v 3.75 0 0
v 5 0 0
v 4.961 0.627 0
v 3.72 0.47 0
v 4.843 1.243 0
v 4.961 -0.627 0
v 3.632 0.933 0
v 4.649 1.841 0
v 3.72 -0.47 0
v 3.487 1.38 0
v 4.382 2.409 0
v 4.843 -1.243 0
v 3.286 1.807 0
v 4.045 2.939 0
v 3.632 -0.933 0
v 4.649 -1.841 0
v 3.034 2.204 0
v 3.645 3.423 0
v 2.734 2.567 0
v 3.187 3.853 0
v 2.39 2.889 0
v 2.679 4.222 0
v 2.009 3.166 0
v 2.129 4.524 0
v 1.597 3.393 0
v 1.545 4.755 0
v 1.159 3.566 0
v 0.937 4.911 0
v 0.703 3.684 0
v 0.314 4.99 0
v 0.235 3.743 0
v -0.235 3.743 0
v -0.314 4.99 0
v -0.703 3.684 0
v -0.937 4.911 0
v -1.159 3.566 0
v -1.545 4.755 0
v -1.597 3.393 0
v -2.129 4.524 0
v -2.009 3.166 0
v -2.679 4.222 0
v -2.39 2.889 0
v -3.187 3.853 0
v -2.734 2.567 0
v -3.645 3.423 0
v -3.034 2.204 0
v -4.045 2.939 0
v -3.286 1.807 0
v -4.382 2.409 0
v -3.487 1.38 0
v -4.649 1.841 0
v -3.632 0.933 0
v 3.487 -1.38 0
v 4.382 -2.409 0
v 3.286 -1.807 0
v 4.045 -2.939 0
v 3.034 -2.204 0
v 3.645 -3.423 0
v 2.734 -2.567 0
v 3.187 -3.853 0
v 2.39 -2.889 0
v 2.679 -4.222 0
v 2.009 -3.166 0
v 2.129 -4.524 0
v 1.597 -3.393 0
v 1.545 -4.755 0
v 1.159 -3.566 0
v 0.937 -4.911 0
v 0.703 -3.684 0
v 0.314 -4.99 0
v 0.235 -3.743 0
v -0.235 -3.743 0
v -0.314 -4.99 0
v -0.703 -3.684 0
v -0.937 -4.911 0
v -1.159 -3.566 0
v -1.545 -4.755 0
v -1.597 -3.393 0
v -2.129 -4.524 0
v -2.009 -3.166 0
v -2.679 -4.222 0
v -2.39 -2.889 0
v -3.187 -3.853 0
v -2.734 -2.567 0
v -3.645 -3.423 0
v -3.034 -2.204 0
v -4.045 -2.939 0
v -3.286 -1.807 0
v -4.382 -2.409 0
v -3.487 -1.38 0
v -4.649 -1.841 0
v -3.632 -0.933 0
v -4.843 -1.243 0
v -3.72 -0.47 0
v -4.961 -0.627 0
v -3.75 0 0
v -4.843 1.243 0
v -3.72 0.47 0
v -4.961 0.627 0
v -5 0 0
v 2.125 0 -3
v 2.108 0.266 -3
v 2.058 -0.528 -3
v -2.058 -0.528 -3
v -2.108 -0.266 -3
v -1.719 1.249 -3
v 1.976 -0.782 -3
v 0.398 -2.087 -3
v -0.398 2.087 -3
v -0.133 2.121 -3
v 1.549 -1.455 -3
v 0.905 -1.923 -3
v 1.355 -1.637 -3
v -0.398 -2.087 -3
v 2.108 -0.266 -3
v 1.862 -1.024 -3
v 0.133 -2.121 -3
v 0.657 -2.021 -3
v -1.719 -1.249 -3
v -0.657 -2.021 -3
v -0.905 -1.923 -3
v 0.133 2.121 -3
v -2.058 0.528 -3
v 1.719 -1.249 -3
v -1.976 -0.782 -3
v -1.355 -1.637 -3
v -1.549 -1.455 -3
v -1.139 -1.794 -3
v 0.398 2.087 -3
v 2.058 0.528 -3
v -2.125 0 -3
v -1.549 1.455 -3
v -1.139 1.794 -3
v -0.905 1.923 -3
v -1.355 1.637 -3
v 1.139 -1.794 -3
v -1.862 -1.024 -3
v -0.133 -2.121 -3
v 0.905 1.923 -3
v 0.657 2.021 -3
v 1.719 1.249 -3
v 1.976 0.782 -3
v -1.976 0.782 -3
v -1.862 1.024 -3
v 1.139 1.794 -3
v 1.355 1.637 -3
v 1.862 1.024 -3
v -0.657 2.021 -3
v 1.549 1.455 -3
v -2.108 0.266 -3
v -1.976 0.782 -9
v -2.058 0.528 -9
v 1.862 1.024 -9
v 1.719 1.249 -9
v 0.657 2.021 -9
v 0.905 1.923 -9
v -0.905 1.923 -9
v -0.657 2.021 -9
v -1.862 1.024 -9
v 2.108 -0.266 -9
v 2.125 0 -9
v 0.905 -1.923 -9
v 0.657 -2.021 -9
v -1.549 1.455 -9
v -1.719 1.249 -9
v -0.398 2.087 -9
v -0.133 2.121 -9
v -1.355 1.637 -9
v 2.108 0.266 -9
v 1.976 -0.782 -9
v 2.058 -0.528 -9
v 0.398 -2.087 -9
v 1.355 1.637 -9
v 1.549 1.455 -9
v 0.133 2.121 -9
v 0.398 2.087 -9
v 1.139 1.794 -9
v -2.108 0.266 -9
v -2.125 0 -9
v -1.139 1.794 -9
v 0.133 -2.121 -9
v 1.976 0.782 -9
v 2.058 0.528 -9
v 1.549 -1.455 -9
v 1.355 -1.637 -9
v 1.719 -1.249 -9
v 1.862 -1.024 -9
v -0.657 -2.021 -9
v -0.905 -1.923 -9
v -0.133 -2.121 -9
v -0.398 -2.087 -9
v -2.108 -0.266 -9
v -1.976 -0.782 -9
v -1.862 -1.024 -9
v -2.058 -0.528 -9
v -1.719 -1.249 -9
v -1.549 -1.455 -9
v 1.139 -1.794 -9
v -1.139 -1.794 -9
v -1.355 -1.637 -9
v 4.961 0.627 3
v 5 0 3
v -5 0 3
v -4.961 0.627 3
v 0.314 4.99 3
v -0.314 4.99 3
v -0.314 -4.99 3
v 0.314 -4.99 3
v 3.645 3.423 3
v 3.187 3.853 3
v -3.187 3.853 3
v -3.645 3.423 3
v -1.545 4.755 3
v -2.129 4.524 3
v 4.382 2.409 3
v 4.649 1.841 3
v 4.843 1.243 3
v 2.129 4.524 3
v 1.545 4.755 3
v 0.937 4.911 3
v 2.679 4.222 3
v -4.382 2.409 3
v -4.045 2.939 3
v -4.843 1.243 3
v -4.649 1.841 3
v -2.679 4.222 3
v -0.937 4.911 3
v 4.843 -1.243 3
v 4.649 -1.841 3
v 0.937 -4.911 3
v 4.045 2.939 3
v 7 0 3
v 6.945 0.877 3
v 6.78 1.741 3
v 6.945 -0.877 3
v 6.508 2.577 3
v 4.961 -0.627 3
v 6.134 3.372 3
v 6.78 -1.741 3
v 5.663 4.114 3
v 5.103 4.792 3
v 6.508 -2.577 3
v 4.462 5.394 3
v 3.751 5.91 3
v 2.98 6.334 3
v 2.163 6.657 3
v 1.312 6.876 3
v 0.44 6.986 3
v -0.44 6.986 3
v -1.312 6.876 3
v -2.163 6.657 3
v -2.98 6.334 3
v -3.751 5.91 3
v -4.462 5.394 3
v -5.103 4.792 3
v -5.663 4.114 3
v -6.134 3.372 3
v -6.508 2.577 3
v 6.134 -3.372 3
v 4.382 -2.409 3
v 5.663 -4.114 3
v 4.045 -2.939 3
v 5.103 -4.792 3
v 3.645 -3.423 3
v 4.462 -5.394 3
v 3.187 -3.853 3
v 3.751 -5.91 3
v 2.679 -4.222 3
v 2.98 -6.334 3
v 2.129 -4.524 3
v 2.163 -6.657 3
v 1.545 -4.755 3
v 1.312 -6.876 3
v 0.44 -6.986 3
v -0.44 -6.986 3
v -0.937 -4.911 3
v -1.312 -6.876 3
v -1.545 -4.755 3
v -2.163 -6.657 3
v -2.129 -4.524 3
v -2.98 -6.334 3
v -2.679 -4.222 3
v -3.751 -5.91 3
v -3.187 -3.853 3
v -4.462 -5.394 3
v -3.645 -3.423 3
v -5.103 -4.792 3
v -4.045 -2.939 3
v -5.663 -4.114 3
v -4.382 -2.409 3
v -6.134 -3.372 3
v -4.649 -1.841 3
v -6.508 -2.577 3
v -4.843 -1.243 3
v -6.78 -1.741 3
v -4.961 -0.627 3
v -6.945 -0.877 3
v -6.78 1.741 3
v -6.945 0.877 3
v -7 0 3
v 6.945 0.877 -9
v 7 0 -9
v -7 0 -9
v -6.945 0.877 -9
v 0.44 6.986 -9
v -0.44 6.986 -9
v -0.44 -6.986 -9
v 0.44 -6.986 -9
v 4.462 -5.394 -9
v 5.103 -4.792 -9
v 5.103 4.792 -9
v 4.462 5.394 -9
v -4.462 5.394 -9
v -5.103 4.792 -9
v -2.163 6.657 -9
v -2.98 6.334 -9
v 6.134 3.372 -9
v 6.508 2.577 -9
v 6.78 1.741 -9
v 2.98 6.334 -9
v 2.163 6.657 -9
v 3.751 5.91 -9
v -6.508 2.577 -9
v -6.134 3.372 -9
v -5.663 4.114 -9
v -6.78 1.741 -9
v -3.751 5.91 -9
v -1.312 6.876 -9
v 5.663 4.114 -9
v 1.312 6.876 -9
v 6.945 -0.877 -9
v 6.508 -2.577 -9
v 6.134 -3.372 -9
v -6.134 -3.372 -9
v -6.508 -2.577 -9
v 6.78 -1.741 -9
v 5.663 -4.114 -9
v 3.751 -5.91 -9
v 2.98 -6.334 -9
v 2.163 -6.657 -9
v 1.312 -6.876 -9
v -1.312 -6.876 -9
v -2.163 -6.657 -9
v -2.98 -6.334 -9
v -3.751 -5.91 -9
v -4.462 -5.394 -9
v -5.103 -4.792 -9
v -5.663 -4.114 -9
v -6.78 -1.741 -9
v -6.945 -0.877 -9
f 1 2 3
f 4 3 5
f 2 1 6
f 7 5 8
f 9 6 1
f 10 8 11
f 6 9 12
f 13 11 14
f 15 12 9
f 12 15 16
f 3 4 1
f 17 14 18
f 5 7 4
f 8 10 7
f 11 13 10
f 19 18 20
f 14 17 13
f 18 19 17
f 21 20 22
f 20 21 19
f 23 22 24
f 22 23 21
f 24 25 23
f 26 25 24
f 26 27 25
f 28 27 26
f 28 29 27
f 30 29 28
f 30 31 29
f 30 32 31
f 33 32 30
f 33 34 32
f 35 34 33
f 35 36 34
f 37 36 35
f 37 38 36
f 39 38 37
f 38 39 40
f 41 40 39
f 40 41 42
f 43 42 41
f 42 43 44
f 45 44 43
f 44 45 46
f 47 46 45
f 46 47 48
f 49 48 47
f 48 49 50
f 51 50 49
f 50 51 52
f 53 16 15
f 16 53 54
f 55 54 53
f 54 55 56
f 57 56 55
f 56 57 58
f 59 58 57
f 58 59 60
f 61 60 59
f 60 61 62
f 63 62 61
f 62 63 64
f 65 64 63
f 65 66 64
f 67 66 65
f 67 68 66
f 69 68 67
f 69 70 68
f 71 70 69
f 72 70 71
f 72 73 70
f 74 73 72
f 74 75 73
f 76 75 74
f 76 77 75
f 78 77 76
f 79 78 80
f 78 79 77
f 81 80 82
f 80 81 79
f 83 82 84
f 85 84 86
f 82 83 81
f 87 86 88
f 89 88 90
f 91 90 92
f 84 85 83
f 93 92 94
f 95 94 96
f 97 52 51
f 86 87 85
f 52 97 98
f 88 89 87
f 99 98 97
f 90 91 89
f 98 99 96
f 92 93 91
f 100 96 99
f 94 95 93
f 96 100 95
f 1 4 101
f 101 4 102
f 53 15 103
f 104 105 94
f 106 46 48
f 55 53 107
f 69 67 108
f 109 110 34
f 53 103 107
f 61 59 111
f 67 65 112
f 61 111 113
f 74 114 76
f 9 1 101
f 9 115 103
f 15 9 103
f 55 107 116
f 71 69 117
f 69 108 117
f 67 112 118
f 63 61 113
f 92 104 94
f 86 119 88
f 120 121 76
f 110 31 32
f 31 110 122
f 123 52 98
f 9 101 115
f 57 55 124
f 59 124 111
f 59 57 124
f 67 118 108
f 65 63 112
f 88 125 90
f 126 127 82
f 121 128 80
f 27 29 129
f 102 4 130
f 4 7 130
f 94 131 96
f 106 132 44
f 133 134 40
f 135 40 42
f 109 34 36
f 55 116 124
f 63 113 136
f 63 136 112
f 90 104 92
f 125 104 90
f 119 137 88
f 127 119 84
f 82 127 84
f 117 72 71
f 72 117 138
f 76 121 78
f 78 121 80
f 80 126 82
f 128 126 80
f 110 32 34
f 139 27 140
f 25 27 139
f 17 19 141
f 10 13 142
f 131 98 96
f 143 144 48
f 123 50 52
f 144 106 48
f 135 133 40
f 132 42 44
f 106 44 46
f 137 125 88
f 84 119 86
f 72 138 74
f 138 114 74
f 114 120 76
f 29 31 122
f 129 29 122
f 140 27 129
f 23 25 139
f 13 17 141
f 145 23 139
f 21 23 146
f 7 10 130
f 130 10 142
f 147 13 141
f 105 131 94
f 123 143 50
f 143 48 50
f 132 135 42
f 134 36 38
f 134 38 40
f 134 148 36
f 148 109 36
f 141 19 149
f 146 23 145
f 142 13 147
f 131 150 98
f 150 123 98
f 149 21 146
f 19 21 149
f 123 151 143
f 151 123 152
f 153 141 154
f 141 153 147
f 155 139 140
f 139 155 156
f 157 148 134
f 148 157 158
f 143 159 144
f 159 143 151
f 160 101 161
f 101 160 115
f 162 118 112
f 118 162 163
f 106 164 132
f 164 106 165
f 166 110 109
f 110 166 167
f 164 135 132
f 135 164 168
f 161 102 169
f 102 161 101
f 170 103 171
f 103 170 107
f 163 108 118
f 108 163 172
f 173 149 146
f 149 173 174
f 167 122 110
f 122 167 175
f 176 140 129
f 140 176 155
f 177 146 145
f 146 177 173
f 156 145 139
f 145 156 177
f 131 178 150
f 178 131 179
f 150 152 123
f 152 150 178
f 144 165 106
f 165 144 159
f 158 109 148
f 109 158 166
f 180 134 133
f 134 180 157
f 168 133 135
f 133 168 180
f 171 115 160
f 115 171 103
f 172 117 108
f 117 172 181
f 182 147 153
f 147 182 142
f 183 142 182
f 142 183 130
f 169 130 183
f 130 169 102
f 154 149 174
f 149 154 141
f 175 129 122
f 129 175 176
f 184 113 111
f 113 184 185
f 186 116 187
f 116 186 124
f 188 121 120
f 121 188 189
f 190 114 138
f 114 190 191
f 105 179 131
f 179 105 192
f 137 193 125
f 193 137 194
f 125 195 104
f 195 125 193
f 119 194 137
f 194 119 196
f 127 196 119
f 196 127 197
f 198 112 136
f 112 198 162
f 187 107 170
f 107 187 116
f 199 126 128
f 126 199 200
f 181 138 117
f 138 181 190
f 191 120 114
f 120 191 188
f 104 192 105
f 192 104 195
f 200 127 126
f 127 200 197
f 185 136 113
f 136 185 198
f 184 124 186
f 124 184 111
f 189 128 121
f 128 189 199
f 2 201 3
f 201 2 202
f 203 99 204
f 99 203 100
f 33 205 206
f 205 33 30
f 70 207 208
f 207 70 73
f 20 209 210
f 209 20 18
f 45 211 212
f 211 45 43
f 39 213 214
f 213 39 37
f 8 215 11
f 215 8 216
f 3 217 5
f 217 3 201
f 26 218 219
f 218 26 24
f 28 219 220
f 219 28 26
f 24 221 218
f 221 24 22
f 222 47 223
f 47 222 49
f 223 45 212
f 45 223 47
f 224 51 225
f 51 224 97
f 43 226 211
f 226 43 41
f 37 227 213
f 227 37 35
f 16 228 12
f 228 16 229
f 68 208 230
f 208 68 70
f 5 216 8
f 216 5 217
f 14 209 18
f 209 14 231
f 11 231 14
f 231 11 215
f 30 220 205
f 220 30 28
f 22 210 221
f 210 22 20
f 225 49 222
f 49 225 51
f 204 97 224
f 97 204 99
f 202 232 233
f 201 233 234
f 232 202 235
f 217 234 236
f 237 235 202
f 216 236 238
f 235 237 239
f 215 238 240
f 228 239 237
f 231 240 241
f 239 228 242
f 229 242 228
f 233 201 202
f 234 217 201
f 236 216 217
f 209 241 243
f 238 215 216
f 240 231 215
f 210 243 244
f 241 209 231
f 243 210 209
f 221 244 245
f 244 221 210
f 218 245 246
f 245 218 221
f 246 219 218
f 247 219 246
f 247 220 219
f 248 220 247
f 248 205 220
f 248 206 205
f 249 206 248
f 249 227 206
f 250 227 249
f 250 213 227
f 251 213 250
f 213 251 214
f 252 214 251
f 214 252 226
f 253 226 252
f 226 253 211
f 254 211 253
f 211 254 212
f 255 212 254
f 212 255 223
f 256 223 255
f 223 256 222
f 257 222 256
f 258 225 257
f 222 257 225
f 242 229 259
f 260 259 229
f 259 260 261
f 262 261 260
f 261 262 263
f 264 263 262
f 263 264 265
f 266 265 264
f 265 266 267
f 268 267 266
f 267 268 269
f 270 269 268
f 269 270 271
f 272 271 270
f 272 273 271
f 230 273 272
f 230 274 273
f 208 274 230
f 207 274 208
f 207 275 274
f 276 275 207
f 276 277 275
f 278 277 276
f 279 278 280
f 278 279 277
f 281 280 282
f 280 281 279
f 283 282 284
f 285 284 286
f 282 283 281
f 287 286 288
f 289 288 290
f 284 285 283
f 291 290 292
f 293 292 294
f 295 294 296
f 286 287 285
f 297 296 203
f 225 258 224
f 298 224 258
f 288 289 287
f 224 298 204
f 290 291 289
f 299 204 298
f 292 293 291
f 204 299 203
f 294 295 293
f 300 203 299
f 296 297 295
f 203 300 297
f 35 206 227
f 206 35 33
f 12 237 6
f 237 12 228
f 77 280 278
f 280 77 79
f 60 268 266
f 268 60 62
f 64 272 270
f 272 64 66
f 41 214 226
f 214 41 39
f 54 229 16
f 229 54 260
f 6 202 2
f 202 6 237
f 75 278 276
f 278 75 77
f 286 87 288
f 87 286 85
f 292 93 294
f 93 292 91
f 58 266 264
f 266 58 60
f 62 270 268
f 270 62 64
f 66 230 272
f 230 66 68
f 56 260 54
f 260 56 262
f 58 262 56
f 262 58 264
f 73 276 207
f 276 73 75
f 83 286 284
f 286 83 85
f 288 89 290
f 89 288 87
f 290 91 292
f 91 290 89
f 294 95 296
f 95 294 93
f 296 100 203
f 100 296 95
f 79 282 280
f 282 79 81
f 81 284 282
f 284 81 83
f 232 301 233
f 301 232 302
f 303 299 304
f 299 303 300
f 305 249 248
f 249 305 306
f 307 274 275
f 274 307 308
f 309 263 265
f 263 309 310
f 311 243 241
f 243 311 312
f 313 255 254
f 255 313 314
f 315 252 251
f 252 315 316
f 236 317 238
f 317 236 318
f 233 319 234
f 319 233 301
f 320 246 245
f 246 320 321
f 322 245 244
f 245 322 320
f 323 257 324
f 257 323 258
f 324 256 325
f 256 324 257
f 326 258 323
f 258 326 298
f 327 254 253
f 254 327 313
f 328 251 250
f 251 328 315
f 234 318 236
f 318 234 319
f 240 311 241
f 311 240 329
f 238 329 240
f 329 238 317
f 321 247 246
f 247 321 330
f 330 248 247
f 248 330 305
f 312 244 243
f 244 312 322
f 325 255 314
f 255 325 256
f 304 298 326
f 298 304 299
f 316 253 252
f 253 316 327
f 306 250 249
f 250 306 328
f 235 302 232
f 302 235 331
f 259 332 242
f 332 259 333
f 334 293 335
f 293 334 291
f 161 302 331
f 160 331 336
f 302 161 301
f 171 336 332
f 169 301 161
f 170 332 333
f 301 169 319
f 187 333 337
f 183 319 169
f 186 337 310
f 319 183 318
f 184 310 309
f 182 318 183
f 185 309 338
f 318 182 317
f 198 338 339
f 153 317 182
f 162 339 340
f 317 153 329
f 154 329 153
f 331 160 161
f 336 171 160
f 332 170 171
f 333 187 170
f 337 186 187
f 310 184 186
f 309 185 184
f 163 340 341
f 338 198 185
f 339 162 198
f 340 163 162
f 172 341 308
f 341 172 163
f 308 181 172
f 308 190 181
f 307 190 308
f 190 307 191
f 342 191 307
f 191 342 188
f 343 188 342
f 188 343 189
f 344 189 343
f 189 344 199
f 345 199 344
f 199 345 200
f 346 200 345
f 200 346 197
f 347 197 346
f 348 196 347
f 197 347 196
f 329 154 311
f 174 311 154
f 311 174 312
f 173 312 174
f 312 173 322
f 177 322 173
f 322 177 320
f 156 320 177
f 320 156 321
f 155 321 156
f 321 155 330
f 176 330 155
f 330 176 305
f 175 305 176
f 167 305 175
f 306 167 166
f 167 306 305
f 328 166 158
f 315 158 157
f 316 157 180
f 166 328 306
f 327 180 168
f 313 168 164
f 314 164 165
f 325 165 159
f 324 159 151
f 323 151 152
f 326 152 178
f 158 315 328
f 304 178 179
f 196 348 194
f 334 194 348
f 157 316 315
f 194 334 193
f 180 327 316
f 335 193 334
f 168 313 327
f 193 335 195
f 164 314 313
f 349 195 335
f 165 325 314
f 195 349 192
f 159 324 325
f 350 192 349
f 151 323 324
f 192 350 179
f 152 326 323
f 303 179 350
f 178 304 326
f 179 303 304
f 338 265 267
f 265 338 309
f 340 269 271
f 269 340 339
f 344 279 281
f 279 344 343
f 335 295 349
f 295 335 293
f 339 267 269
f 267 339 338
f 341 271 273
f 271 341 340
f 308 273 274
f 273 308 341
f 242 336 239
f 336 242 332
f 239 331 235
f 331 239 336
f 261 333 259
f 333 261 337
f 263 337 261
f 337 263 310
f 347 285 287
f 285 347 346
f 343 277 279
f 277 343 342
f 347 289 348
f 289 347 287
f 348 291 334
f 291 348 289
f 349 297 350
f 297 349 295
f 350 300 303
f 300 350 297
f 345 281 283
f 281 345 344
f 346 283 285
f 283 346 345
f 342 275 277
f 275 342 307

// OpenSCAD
$fn = 50;


difference() {
	union() {
		translate(v = [0, 0, -9.0000000000]) {
			cylinder(h = 12, r = 7.0000000000);
		}
	}
	union() {
		translate(v = [0, 0, 0]) {
			rotate(a = [0, 0, 0]) {
				difference() {
					union() {
						translate(v = [0, 0, -12.0000000000]) {
							cylinder(h = 12, r = 2.0000000000);
						}
						translate(v = [0, 0, -3]) {
							cylinder(h = 3, r1 = 2.1250000000, r2 = 3.7500000000);
						}
						translate(v = [0, 0, -12.0000000000]) {
							cylinder(h = 12, r = 2.1250000000);
						}
						translate(v = [0, 0, -12.0000000000]) {
							cylinder(h = 12, r = 2.0000000000);
						}
					}
					union();
				}
			}
		}
		#cylinder(h = 3, r = 5.0000000000);
	}
}
